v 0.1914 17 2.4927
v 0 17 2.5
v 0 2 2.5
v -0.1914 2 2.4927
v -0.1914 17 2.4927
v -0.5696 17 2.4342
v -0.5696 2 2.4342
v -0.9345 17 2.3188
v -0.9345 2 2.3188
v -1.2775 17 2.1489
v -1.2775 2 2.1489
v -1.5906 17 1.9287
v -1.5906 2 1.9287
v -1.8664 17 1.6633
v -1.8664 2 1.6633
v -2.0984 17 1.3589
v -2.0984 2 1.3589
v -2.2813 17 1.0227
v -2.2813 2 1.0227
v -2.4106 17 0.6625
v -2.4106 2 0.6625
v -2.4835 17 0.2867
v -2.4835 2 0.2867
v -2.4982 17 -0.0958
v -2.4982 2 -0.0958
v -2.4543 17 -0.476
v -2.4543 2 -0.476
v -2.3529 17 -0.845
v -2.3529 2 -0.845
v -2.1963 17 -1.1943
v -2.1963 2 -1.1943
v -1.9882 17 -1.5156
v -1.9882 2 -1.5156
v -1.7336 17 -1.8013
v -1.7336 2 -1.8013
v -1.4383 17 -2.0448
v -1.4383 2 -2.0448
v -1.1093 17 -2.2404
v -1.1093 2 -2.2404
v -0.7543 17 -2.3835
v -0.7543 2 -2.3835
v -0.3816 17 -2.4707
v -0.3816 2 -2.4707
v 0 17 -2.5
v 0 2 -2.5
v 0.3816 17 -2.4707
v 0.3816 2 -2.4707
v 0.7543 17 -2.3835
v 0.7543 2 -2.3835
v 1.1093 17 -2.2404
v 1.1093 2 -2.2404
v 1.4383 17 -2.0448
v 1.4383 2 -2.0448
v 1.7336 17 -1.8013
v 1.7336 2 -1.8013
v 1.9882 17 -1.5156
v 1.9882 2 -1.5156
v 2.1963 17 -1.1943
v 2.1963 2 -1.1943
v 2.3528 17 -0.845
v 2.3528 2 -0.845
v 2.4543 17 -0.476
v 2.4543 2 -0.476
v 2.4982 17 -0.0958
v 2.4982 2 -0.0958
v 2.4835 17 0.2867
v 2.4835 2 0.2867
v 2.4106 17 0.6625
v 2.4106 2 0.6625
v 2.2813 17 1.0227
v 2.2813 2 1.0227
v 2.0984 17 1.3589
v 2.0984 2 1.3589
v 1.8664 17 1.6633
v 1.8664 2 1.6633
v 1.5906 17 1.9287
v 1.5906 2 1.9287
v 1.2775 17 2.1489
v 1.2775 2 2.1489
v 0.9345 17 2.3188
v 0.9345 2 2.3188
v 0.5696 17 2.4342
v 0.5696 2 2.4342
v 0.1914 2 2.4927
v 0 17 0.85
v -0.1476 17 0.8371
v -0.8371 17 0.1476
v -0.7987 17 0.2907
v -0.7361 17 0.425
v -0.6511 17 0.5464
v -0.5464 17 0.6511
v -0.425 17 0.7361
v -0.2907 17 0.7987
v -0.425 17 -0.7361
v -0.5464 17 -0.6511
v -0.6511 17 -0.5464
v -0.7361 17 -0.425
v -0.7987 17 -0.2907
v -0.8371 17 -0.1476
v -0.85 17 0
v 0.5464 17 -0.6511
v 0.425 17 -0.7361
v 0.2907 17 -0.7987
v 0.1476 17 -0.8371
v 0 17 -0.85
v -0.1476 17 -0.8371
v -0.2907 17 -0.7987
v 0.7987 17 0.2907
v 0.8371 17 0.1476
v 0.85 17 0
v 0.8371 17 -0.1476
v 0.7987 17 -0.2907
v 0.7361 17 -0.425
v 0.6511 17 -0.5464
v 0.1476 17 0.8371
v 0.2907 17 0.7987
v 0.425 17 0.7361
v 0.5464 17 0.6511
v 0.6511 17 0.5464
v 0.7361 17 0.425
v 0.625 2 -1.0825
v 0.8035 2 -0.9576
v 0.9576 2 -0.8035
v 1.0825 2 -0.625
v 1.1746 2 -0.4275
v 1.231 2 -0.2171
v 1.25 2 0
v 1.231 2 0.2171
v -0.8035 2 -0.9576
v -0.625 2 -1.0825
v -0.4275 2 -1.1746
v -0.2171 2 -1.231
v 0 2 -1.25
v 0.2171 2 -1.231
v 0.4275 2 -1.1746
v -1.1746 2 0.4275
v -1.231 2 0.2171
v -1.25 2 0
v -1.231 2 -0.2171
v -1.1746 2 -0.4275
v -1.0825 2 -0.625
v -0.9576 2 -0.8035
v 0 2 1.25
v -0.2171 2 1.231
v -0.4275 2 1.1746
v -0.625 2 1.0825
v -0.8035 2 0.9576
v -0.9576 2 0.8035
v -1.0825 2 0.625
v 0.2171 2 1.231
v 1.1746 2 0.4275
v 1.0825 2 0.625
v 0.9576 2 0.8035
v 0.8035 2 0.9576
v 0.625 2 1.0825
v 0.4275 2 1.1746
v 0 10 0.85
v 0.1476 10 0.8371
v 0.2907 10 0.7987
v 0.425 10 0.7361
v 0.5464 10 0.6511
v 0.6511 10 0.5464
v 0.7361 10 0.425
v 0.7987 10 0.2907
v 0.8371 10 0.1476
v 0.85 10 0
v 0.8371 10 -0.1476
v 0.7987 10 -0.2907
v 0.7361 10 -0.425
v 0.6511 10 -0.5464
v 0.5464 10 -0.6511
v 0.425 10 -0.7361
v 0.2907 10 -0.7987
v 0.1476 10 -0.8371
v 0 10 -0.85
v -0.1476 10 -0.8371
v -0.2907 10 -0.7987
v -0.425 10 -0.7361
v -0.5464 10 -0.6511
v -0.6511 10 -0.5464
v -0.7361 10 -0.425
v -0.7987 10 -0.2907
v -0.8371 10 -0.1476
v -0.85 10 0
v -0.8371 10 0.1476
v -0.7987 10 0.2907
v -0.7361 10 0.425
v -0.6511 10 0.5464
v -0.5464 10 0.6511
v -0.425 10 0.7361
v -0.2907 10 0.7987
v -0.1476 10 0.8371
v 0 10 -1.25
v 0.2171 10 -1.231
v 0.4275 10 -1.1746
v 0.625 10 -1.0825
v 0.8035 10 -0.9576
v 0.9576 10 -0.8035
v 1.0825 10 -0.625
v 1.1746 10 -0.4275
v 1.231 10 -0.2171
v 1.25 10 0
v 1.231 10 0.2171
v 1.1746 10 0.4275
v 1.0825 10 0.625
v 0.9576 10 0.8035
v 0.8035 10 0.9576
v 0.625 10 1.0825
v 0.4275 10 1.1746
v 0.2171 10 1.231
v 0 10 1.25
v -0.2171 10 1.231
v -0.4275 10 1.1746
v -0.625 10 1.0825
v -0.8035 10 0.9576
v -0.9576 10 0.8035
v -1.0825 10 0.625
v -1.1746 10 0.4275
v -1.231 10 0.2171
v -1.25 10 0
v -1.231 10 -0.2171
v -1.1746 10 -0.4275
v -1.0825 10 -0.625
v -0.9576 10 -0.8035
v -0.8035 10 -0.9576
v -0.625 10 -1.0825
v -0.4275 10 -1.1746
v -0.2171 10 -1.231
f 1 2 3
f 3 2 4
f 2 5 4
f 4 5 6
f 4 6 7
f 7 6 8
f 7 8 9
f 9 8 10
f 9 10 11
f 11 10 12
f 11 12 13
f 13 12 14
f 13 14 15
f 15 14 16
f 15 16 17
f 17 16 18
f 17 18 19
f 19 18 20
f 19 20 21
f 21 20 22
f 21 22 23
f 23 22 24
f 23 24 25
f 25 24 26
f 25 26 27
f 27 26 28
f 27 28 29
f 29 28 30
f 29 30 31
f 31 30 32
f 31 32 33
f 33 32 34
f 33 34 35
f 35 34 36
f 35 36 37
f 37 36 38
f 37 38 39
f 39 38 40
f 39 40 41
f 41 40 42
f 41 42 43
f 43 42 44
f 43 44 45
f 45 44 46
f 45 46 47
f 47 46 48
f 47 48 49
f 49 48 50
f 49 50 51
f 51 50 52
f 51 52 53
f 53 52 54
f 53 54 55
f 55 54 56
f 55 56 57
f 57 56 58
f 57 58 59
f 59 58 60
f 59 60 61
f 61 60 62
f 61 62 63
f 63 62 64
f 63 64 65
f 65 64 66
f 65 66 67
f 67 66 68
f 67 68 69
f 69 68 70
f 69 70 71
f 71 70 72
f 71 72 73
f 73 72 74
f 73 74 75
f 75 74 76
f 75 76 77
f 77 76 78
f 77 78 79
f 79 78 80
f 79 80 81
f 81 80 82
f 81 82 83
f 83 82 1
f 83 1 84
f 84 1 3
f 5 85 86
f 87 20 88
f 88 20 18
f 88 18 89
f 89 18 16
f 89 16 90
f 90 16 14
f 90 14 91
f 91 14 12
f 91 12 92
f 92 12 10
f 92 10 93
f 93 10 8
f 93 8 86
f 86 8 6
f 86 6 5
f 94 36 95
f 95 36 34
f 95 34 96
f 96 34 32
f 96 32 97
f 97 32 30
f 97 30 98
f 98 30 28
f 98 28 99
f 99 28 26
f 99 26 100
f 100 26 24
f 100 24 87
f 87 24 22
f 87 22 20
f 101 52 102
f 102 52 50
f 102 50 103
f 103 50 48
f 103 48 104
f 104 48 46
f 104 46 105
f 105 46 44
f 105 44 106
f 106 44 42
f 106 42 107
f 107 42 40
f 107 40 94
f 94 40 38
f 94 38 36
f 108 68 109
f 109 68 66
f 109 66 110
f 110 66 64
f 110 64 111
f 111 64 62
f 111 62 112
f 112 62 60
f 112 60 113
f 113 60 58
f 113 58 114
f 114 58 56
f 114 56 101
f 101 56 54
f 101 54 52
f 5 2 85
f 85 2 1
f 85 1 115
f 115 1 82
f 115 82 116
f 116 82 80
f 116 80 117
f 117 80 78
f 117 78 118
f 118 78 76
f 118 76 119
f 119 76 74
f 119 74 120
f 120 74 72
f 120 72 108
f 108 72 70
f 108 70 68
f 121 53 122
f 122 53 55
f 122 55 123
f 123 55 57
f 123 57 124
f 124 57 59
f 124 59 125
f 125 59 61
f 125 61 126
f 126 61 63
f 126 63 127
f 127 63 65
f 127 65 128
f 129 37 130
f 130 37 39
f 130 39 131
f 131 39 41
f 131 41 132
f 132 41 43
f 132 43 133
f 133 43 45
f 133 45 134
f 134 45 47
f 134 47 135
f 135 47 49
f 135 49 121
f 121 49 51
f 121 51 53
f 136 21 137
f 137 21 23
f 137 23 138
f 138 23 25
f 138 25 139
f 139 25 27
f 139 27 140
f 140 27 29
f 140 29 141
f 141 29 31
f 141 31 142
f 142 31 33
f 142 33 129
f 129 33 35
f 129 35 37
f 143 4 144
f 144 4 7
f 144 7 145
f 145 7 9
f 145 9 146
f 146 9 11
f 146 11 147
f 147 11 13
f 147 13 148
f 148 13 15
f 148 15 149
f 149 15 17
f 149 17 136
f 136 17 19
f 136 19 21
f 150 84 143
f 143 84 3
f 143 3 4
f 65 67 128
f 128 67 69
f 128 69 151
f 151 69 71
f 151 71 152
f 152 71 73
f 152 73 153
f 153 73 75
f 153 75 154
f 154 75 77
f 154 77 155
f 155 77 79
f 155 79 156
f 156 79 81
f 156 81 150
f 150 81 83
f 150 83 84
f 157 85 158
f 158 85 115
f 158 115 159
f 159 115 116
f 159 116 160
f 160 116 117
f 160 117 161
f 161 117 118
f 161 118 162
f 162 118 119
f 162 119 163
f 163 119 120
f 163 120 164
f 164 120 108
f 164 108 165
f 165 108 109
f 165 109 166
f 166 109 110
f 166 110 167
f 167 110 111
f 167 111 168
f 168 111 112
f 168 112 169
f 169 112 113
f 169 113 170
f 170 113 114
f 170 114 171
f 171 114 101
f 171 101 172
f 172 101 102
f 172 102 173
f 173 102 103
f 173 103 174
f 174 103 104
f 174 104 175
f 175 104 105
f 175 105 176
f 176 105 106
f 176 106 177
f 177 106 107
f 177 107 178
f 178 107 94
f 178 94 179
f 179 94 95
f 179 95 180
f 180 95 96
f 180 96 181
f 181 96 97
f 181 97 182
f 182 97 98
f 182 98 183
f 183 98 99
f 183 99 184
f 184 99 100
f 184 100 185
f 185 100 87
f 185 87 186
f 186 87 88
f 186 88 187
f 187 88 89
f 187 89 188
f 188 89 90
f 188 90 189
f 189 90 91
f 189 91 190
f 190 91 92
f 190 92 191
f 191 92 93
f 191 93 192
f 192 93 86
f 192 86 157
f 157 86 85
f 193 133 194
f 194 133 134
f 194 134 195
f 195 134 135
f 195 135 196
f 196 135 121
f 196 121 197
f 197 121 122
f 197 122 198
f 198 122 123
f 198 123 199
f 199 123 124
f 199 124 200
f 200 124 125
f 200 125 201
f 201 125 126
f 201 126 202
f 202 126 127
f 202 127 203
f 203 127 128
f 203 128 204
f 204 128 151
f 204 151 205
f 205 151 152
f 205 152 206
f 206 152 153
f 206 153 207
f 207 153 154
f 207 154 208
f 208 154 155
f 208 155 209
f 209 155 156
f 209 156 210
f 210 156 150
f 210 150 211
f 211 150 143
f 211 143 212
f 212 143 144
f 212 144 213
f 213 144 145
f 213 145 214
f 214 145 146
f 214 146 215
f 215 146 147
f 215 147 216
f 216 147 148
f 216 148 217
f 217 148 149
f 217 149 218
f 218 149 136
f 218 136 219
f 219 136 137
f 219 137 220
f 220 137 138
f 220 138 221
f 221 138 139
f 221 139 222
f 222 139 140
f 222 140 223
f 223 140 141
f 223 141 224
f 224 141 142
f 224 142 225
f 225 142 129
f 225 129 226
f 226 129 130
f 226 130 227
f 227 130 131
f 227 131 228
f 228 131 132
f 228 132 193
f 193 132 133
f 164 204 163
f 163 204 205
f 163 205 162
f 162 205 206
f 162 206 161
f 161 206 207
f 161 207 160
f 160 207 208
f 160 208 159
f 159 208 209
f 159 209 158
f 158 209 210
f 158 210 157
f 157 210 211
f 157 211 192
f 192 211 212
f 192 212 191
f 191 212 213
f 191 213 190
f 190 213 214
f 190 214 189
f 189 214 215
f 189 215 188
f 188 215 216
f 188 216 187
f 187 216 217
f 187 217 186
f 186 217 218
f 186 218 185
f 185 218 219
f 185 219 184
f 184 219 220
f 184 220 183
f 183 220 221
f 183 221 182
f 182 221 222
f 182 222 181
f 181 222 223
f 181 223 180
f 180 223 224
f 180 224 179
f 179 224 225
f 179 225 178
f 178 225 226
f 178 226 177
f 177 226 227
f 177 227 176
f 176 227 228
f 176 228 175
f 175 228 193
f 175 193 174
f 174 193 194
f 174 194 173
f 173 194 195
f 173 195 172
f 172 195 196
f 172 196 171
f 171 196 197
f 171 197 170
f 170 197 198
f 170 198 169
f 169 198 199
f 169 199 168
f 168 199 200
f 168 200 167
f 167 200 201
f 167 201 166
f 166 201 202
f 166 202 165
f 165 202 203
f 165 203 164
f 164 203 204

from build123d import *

# Parameters (mm, degrees)
SKETCH_1_R          = 1.25
EXTRUDE_1_DEPTH     = 2
SKETCH_2_R          = 2.5
EXTRUDE_2_DEPTH     = 15
SKETCH_3_R          = 0.85
CUT_EXTRUDE_1_DEPTH = 8
SKETCH_1_3_R        = 1.25
CUT_EXTRUDE_2_DEPTH = 10


with BuildPart() as part:
    # 草图1 → 凸台-拉伸1 (new body)
    with BuildSketch(Plane(origin=(0, 0, 0), x_dir=(1, 0, 0), z_dir=(0, 1, 0))):
        Circle(SKETCH_1_R)
    extrude(amount=EXTRUDE_1_DEPTH)

    # 草图2 → 凸台-拉伸2 (add)
    with BuildSketch(Plane(origin=(0, 2, 0), x_dir=(1, 0, 0), z_dir=(0, 1, 0))):
        Circle(SKETCH_2_R)
    extrude(amount=EXTRUDE_2_DEPTH)

    # 草图3 → 切除-拉伸1 (cut)
    with BuildSketch(Plane(origin=(0, 17, 0), x_dir=(1, 0, 0), z_dir=(0, 1, 0))):
        Circle(SKETCH_3_R)
    extrude(amount=-CUT_EXTRUDE_1_DEPTH, mode=Mode.SUBTRACT)

    # 草图1<3> → 切除-拉伸2 (cut)
    with BuildSketch(Plane(origin=(0, 0, 0), x_dir=(1, 0, 0), z_dir=(0, 1, 0))):
        Circle(SKETCH_1_3_R)
    extrude(amount=CUT_EXTRUDE_2_DEPTH, mode=Mode.SUBTRACT)


solid = part.part
